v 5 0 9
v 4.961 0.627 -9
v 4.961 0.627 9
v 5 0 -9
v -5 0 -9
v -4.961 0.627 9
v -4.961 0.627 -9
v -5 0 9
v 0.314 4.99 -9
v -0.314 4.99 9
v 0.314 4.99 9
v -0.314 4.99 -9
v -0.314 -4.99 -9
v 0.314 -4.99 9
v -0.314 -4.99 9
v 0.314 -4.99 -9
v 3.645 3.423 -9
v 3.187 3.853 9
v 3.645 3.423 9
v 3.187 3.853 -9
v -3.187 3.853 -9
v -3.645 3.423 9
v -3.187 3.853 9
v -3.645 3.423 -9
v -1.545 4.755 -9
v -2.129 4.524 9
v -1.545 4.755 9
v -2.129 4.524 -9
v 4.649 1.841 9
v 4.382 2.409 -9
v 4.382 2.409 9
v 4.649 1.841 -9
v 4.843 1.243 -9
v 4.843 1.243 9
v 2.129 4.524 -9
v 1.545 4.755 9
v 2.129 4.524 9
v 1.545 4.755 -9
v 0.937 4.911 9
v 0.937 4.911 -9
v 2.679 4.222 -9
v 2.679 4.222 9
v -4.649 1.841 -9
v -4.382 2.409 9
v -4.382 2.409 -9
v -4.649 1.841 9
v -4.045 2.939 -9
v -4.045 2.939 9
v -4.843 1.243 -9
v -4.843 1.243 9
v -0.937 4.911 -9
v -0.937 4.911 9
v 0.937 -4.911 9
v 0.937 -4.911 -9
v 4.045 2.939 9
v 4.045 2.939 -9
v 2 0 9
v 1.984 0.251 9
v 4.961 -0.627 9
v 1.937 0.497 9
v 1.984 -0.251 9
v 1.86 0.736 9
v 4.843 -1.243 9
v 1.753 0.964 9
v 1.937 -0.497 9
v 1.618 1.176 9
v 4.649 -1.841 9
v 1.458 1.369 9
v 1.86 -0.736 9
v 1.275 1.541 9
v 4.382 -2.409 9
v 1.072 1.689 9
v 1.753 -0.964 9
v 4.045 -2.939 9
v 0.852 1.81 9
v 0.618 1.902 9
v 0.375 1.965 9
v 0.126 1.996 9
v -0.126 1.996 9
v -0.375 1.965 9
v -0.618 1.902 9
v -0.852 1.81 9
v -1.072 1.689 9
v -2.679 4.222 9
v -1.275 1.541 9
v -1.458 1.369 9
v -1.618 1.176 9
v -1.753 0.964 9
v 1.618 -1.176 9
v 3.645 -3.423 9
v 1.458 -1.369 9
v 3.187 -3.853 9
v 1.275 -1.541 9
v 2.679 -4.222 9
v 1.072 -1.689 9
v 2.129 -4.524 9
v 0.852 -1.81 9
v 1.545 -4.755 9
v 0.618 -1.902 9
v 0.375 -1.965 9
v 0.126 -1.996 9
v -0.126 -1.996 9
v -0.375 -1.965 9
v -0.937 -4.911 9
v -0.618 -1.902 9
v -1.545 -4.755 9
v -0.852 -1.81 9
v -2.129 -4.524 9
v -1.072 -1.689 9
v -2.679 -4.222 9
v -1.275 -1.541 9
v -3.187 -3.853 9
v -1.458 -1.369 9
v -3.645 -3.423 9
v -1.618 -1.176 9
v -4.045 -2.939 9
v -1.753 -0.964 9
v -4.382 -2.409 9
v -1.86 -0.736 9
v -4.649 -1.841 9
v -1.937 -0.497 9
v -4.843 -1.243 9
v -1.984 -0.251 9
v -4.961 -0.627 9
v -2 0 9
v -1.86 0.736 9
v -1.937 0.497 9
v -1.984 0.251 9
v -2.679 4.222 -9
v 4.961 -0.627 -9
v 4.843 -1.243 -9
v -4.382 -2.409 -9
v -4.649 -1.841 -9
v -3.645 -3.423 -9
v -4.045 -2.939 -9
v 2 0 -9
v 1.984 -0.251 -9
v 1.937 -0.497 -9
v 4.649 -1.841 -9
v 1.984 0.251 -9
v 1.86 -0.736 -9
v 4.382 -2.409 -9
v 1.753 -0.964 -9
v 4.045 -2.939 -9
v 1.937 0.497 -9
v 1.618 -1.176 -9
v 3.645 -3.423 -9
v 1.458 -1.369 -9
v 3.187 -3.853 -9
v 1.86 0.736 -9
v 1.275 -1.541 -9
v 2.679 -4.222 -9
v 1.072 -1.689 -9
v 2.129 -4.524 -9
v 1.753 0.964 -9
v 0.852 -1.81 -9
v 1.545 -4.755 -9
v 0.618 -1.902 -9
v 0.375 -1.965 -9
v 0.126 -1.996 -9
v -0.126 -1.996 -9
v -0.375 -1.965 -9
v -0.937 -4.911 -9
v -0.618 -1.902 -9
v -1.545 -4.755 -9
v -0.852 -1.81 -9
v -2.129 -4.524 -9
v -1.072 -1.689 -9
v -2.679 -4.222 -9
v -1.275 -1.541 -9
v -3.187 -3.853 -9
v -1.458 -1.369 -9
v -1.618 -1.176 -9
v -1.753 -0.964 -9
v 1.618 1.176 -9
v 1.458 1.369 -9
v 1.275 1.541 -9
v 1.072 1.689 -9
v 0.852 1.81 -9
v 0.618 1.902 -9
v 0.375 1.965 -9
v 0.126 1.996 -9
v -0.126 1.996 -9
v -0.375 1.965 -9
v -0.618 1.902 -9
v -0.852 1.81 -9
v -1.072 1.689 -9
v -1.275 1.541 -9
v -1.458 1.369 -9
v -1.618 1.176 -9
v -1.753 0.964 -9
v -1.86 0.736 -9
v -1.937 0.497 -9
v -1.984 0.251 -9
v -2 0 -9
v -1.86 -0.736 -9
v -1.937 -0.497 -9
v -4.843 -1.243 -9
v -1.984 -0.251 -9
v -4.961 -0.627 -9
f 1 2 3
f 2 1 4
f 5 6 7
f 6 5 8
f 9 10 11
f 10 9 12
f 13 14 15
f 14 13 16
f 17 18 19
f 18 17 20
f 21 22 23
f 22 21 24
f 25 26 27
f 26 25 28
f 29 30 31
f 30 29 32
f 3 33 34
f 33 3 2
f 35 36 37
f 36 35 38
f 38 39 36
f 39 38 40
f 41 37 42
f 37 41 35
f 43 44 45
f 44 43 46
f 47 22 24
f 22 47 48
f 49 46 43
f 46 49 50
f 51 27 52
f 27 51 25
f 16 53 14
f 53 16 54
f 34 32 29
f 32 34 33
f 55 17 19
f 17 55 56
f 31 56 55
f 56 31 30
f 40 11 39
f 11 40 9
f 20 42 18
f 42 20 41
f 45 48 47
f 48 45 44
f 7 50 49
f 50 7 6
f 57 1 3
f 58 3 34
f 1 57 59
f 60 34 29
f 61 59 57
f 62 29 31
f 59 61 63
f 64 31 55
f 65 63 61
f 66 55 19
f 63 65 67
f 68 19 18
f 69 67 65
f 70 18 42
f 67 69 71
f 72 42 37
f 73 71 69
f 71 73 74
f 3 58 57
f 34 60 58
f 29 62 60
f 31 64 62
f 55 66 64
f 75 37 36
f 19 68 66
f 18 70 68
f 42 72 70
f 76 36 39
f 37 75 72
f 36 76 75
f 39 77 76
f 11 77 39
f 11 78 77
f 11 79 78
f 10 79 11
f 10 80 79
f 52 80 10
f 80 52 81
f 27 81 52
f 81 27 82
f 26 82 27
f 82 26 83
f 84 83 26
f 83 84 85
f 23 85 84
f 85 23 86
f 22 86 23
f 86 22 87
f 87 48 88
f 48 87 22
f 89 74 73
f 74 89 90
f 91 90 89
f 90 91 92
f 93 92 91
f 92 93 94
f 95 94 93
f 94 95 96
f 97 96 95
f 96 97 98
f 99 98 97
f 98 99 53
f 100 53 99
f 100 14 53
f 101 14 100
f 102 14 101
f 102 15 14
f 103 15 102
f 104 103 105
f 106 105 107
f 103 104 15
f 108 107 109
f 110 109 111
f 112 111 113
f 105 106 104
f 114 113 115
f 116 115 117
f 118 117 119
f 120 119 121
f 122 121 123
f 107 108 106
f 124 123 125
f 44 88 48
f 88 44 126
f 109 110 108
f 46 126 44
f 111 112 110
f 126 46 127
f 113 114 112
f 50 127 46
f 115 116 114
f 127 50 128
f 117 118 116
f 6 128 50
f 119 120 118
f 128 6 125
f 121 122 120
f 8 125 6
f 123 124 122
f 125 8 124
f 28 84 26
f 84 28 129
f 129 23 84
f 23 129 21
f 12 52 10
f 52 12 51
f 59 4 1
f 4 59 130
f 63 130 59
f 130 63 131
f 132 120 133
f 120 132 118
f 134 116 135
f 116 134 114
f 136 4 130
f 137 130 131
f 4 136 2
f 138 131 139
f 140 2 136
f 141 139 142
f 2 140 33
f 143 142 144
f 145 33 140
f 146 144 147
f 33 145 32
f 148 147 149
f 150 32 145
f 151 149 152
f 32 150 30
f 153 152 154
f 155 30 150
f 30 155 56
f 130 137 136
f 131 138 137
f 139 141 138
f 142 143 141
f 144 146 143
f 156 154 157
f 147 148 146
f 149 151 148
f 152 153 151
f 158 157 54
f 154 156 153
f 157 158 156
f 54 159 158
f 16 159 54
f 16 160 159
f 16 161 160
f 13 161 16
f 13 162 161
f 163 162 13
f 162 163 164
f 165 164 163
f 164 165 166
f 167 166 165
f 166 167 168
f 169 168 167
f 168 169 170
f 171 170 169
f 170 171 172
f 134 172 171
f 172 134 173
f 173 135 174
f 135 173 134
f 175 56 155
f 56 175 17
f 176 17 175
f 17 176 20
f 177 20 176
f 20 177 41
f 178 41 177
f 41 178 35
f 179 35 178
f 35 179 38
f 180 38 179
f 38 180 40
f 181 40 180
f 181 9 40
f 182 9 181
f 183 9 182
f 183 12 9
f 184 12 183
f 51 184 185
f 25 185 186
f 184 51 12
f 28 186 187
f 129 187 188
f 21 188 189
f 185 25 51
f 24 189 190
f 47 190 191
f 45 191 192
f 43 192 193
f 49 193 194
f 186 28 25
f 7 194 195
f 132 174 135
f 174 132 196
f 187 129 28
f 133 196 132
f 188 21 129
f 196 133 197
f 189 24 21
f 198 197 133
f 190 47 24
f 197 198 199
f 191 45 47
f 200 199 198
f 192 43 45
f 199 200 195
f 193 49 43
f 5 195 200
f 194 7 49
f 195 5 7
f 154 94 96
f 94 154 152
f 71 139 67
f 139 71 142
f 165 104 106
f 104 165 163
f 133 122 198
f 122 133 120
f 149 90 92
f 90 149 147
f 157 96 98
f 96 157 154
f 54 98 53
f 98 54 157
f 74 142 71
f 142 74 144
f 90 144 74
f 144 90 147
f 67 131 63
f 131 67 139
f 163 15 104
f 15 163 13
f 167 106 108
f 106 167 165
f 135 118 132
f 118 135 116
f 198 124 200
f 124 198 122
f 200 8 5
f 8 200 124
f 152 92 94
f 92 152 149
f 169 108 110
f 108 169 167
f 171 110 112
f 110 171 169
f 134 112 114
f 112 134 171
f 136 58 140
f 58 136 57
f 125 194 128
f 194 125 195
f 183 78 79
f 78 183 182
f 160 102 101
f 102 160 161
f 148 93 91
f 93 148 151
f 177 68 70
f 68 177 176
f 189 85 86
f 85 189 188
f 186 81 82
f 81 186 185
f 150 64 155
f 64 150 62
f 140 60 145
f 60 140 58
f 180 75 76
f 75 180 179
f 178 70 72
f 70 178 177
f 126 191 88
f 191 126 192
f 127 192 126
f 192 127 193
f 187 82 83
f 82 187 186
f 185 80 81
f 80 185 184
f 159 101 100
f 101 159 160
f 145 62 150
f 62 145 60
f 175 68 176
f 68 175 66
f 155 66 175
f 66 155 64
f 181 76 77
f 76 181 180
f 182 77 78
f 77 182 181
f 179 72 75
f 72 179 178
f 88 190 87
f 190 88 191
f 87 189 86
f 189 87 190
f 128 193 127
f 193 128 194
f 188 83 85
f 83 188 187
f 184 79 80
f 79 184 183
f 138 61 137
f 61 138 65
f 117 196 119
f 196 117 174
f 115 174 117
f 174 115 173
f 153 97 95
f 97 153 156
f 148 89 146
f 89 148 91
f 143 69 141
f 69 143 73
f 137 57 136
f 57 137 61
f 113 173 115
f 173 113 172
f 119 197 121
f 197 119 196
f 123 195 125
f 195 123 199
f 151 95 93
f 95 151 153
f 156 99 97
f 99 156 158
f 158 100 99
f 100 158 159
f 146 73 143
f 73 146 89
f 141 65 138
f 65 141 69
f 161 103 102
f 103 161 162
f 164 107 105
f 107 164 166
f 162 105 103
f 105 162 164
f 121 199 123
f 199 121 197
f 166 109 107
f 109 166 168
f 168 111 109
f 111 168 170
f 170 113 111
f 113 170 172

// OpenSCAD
$fn = 50;


difference() {
	union() {
		translate(v = [0, 0, -9.0000000000]) {
			cylinder(h = 18, r = 5.0000000000);
		}
	}
	union() {
		translate(v = [0, 0, -100.0000000000]) {
			cylinder(h = 200, r = 2);
		}
	}
}
